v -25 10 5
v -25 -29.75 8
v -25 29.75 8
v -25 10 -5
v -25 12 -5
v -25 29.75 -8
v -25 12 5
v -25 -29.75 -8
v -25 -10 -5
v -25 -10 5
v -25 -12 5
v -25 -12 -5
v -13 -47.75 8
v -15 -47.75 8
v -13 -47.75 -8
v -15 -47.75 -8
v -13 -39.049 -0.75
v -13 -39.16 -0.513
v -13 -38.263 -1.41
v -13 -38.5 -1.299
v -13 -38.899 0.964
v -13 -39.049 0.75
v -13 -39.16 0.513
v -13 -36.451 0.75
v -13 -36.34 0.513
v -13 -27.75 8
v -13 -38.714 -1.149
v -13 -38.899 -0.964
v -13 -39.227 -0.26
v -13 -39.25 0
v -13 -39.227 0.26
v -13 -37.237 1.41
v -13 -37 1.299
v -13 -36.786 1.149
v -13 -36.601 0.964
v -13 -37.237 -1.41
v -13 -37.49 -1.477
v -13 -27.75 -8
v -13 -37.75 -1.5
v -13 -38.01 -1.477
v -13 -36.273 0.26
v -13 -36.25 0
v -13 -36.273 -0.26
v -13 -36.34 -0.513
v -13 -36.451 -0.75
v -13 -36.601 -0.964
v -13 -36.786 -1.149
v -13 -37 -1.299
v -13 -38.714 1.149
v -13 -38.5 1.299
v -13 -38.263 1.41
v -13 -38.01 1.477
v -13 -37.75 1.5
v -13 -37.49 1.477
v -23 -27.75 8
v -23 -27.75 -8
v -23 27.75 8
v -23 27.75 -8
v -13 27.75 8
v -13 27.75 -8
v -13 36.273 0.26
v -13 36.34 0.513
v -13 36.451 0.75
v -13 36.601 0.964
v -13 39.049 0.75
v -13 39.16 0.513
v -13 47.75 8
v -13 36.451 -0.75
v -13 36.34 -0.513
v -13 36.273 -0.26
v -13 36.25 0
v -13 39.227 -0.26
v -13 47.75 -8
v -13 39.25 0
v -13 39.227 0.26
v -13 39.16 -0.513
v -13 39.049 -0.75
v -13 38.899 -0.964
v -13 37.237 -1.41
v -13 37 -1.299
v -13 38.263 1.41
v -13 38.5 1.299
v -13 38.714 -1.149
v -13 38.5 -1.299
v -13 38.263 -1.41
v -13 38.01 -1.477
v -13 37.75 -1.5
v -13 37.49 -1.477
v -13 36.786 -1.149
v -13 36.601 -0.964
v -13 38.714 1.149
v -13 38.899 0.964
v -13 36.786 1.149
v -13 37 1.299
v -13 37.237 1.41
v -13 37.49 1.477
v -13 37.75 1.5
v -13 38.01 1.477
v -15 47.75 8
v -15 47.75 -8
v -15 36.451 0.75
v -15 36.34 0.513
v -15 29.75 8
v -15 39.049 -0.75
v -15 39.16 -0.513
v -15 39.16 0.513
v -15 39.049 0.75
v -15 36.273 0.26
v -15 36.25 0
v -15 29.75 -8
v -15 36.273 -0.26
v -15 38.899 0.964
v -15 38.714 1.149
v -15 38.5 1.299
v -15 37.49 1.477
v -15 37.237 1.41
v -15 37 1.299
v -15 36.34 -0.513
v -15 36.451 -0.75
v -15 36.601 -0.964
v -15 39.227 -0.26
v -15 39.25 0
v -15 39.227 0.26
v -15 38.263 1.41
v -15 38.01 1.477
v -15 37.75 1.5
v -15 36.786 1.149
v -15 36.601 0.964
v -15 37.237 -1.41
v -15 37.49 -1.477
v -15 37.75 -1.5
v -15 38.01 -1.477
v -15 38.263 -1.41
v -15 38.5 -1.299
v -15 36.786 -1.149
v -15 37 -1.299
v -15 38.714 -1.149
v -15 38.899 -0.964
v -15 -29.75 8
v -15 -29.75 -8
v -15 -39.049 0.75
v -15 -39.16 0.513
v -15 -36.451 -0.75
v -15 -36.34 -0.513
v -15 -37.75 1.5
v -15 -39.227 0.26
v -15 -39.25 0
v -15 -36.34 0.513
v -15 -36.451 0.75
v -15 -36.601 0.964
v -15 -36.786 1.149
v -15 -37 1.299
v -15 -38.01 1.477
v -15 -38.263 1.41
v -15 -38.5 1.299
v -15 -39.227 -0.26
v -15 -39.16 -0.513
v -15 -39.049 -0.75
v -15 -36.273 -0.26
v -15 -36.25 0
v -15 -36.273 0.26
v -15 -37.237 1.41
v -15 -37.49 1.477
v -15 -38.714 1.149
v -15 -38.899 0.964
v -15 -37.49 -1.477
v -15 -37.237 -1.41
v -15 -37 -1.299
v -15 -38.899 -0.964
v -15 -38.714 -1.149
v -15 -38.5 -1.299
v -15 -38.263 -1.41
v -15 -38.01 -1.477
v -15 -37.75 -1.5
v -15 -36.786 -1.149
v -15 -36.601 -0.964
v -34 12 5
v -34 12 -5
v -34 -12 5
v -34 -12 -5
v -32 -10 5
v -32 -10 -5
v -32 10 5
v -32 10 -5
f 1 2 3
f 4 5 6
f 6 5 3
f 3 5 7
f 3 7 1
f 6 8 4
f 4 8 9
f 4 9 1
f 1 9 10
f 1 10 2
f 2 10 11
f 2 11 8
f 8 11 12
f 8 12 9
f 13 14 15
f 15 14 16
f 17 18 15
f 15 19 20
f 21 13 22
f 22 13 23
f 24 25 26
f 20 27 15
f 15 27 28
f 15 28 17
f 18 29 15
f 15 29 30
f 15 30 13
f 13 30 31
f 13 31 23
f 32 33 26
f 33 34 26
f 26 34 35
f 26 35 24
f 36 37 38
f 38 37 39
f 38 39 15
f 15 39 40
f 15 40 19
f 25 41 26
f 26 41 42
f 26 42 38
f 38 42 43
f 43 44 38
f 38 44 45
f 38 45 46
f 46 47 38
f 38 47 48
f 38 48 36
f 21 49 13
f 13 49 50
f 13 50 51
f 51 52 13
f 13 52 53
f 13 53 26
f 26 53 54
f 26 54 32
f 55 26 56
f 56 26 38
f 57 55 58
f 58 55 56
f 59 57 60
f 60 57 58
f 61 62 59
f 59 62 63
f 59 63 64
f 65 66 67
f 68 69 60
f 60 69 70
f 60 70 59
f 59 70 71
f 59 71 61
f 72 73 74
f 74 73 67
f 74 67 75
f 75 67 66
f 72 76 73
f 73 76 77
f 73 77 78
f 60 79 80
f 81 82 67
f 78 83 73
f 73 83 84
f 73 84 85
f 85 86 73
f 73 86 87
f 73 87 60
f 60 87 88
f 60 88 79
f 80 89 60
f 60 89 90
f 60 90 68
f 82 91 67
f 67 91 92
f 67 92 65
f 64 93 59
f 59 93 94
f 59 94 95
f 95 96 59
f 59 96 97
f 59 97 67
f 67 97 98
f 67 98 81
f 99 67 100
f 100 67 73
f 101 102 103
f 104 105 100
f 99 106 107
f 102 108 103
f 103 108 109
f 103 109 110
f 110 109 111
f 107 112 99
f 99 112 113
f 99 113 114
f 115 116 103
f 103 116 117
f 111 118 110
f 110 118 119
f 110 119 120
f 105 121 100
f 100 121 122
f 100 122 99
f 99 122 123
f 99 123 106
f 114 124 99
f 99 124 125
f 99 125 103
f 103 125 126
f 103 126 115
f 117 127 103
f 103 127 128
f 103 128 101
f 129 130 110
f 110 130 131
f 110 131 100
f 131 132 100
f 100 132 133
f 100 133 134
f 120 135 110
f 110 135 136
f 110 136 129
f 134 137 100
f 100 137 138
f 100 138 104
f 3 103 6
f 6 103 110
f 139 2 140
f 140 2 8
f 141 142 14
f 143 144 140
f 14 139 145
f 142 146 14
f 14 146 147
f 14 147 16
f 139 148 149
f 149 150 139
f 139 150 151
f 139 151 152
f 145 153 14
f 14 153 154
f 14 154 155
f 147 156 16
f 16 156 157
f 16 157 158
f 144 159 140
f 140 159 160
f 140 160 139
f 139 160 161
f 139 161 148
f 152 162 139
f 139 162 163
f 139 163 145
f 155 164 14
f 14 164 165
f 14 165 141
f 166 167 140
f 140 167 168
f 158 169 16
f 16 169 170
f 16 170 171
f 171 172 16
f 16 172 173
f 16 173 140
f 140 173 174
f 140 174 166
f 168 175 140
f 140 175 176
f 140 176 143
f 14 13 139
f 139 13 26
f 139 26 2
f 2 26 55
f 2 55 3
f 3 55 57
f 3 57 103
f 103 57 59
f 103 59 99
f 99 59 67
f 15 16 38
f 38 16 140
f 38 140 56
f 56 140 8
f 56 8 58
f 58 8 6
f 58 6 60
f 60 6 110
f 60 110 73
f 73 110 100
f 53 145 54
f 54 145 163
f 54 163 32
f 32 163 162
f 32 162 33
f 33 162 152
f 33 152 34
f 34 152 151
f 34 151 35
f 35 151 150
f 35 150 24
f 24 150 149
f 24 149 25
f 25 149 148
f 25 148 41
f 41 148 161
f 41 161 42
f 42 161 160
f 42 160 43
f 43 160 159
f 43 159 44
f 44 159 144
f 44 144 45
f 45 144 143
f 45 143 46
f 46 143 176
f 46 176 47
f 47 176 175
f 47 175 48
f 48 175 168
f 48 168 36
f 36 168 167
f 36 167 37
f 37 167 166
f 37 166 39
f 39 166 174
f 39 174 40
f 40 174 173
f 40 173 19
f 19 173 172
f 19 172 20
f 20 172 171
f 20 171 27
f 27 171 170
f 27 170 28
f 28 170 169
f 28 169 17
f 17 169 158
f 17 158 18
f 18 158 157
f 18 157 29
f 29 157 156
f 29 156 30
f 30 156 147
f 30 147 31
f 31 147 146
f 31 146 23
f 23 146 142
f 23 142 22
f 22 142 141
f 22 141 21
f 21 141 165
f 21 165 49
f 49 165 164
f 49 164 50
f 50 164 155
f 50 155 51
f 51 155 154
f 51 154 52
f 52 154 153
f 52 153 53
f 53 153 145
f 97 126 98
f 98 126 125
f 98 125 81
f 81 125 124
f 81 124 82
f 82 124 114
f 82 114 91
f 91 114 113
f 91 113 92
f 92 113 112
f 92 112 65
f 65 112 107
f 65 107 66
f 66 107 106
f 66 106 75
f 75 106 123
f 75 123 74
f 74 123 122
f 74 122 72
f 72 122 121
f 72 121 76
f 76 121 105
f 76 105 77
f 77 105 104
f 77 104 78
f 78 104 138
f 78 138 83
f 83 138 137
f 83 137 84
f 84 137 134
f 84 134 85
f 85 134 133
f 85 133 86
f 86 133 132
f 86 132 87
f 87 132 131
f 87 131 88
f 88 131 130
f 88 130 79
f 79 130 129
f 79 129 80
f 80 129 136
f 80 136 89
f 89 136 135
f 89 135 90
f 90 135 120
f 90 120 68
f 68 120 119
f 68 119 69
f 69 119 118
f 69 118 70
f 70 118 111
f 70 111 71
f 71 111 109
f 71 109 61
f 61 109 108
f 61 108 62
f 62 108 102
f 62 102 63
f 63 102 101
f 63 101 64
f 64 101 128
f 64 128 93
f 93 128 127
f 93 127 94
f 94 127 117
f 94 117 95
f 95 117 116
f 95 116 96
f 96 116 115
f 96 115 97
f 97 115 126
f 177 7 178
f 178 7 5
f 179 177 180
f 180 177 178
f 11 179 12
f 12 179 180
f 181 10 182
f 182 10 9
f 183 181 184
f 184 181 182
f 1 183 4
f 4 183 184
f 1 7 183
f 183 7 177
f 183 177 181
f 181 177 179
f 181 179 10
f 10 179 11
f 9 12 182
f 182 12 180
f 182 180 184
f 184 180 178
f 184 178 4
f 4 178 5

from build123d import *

# Parameters (mm, degrees)
Y_KSEKLIK_EKSTR_ZYON1_DEPTH = 8
IZIM2_R                     = 1.5
KES_EKSTR_ZYON1_DEPTH       = 10
Y_KSEKLIK_EKSTR_ZYON2_DEPTH = 5


with BuildPart() as part:
    # Çizim1 → Yükseklik-Ekstrüzyon1 (new body, symmetric)
    with BuildSketch(Plane.XY):
        Polygon((-15, 27.75), (-13, 27.75), (-13, 29.75), (-13, 47.75), (-15, 47.75), (-15, 29.75), (-25, 29.75), (-25, -29.75), (-15, -29.75), (-15, -47.75), (-13, -47.75), (-13, -29.75), (-13, -27.75), (-15, -27.75), (-23, -27.75), (-23, 0), (-23, 27.75), align=None)
    extrude(amount=Y_KSEKLIK_EKSTR_ZYON1_DEPTH, both=True)

    # Çizim2 → Kes-Ekstrüzyon1 (cut)
    with BuildSketch(Plane.ZY.offset(15)):
        with Locations((0, 37.75)):
            Circle(IZIM2_R)
        with Locations((0, -37.75)):
            Circle(IZIM2_R)
    extrude(amount=-KES_EKSTR_ZYON1_DEPTH, mode=Mode.SUBTRACT)

    # Çizim4 → Yükseklik-Ekstrüzyon2 (add, symmetric)
    with BuildSketch(Plane.XY):
        Polygon((-25, 10), (-32, 10), (-32, -10), (-25, -10), (-25, -12), (-34, -12), (-34, 12), (-25, 12), align=None)
    extrude(amount=Y_KSEKLIK_EKSTR_ZYON2_DEPTH, both=True)


solid = part.part
